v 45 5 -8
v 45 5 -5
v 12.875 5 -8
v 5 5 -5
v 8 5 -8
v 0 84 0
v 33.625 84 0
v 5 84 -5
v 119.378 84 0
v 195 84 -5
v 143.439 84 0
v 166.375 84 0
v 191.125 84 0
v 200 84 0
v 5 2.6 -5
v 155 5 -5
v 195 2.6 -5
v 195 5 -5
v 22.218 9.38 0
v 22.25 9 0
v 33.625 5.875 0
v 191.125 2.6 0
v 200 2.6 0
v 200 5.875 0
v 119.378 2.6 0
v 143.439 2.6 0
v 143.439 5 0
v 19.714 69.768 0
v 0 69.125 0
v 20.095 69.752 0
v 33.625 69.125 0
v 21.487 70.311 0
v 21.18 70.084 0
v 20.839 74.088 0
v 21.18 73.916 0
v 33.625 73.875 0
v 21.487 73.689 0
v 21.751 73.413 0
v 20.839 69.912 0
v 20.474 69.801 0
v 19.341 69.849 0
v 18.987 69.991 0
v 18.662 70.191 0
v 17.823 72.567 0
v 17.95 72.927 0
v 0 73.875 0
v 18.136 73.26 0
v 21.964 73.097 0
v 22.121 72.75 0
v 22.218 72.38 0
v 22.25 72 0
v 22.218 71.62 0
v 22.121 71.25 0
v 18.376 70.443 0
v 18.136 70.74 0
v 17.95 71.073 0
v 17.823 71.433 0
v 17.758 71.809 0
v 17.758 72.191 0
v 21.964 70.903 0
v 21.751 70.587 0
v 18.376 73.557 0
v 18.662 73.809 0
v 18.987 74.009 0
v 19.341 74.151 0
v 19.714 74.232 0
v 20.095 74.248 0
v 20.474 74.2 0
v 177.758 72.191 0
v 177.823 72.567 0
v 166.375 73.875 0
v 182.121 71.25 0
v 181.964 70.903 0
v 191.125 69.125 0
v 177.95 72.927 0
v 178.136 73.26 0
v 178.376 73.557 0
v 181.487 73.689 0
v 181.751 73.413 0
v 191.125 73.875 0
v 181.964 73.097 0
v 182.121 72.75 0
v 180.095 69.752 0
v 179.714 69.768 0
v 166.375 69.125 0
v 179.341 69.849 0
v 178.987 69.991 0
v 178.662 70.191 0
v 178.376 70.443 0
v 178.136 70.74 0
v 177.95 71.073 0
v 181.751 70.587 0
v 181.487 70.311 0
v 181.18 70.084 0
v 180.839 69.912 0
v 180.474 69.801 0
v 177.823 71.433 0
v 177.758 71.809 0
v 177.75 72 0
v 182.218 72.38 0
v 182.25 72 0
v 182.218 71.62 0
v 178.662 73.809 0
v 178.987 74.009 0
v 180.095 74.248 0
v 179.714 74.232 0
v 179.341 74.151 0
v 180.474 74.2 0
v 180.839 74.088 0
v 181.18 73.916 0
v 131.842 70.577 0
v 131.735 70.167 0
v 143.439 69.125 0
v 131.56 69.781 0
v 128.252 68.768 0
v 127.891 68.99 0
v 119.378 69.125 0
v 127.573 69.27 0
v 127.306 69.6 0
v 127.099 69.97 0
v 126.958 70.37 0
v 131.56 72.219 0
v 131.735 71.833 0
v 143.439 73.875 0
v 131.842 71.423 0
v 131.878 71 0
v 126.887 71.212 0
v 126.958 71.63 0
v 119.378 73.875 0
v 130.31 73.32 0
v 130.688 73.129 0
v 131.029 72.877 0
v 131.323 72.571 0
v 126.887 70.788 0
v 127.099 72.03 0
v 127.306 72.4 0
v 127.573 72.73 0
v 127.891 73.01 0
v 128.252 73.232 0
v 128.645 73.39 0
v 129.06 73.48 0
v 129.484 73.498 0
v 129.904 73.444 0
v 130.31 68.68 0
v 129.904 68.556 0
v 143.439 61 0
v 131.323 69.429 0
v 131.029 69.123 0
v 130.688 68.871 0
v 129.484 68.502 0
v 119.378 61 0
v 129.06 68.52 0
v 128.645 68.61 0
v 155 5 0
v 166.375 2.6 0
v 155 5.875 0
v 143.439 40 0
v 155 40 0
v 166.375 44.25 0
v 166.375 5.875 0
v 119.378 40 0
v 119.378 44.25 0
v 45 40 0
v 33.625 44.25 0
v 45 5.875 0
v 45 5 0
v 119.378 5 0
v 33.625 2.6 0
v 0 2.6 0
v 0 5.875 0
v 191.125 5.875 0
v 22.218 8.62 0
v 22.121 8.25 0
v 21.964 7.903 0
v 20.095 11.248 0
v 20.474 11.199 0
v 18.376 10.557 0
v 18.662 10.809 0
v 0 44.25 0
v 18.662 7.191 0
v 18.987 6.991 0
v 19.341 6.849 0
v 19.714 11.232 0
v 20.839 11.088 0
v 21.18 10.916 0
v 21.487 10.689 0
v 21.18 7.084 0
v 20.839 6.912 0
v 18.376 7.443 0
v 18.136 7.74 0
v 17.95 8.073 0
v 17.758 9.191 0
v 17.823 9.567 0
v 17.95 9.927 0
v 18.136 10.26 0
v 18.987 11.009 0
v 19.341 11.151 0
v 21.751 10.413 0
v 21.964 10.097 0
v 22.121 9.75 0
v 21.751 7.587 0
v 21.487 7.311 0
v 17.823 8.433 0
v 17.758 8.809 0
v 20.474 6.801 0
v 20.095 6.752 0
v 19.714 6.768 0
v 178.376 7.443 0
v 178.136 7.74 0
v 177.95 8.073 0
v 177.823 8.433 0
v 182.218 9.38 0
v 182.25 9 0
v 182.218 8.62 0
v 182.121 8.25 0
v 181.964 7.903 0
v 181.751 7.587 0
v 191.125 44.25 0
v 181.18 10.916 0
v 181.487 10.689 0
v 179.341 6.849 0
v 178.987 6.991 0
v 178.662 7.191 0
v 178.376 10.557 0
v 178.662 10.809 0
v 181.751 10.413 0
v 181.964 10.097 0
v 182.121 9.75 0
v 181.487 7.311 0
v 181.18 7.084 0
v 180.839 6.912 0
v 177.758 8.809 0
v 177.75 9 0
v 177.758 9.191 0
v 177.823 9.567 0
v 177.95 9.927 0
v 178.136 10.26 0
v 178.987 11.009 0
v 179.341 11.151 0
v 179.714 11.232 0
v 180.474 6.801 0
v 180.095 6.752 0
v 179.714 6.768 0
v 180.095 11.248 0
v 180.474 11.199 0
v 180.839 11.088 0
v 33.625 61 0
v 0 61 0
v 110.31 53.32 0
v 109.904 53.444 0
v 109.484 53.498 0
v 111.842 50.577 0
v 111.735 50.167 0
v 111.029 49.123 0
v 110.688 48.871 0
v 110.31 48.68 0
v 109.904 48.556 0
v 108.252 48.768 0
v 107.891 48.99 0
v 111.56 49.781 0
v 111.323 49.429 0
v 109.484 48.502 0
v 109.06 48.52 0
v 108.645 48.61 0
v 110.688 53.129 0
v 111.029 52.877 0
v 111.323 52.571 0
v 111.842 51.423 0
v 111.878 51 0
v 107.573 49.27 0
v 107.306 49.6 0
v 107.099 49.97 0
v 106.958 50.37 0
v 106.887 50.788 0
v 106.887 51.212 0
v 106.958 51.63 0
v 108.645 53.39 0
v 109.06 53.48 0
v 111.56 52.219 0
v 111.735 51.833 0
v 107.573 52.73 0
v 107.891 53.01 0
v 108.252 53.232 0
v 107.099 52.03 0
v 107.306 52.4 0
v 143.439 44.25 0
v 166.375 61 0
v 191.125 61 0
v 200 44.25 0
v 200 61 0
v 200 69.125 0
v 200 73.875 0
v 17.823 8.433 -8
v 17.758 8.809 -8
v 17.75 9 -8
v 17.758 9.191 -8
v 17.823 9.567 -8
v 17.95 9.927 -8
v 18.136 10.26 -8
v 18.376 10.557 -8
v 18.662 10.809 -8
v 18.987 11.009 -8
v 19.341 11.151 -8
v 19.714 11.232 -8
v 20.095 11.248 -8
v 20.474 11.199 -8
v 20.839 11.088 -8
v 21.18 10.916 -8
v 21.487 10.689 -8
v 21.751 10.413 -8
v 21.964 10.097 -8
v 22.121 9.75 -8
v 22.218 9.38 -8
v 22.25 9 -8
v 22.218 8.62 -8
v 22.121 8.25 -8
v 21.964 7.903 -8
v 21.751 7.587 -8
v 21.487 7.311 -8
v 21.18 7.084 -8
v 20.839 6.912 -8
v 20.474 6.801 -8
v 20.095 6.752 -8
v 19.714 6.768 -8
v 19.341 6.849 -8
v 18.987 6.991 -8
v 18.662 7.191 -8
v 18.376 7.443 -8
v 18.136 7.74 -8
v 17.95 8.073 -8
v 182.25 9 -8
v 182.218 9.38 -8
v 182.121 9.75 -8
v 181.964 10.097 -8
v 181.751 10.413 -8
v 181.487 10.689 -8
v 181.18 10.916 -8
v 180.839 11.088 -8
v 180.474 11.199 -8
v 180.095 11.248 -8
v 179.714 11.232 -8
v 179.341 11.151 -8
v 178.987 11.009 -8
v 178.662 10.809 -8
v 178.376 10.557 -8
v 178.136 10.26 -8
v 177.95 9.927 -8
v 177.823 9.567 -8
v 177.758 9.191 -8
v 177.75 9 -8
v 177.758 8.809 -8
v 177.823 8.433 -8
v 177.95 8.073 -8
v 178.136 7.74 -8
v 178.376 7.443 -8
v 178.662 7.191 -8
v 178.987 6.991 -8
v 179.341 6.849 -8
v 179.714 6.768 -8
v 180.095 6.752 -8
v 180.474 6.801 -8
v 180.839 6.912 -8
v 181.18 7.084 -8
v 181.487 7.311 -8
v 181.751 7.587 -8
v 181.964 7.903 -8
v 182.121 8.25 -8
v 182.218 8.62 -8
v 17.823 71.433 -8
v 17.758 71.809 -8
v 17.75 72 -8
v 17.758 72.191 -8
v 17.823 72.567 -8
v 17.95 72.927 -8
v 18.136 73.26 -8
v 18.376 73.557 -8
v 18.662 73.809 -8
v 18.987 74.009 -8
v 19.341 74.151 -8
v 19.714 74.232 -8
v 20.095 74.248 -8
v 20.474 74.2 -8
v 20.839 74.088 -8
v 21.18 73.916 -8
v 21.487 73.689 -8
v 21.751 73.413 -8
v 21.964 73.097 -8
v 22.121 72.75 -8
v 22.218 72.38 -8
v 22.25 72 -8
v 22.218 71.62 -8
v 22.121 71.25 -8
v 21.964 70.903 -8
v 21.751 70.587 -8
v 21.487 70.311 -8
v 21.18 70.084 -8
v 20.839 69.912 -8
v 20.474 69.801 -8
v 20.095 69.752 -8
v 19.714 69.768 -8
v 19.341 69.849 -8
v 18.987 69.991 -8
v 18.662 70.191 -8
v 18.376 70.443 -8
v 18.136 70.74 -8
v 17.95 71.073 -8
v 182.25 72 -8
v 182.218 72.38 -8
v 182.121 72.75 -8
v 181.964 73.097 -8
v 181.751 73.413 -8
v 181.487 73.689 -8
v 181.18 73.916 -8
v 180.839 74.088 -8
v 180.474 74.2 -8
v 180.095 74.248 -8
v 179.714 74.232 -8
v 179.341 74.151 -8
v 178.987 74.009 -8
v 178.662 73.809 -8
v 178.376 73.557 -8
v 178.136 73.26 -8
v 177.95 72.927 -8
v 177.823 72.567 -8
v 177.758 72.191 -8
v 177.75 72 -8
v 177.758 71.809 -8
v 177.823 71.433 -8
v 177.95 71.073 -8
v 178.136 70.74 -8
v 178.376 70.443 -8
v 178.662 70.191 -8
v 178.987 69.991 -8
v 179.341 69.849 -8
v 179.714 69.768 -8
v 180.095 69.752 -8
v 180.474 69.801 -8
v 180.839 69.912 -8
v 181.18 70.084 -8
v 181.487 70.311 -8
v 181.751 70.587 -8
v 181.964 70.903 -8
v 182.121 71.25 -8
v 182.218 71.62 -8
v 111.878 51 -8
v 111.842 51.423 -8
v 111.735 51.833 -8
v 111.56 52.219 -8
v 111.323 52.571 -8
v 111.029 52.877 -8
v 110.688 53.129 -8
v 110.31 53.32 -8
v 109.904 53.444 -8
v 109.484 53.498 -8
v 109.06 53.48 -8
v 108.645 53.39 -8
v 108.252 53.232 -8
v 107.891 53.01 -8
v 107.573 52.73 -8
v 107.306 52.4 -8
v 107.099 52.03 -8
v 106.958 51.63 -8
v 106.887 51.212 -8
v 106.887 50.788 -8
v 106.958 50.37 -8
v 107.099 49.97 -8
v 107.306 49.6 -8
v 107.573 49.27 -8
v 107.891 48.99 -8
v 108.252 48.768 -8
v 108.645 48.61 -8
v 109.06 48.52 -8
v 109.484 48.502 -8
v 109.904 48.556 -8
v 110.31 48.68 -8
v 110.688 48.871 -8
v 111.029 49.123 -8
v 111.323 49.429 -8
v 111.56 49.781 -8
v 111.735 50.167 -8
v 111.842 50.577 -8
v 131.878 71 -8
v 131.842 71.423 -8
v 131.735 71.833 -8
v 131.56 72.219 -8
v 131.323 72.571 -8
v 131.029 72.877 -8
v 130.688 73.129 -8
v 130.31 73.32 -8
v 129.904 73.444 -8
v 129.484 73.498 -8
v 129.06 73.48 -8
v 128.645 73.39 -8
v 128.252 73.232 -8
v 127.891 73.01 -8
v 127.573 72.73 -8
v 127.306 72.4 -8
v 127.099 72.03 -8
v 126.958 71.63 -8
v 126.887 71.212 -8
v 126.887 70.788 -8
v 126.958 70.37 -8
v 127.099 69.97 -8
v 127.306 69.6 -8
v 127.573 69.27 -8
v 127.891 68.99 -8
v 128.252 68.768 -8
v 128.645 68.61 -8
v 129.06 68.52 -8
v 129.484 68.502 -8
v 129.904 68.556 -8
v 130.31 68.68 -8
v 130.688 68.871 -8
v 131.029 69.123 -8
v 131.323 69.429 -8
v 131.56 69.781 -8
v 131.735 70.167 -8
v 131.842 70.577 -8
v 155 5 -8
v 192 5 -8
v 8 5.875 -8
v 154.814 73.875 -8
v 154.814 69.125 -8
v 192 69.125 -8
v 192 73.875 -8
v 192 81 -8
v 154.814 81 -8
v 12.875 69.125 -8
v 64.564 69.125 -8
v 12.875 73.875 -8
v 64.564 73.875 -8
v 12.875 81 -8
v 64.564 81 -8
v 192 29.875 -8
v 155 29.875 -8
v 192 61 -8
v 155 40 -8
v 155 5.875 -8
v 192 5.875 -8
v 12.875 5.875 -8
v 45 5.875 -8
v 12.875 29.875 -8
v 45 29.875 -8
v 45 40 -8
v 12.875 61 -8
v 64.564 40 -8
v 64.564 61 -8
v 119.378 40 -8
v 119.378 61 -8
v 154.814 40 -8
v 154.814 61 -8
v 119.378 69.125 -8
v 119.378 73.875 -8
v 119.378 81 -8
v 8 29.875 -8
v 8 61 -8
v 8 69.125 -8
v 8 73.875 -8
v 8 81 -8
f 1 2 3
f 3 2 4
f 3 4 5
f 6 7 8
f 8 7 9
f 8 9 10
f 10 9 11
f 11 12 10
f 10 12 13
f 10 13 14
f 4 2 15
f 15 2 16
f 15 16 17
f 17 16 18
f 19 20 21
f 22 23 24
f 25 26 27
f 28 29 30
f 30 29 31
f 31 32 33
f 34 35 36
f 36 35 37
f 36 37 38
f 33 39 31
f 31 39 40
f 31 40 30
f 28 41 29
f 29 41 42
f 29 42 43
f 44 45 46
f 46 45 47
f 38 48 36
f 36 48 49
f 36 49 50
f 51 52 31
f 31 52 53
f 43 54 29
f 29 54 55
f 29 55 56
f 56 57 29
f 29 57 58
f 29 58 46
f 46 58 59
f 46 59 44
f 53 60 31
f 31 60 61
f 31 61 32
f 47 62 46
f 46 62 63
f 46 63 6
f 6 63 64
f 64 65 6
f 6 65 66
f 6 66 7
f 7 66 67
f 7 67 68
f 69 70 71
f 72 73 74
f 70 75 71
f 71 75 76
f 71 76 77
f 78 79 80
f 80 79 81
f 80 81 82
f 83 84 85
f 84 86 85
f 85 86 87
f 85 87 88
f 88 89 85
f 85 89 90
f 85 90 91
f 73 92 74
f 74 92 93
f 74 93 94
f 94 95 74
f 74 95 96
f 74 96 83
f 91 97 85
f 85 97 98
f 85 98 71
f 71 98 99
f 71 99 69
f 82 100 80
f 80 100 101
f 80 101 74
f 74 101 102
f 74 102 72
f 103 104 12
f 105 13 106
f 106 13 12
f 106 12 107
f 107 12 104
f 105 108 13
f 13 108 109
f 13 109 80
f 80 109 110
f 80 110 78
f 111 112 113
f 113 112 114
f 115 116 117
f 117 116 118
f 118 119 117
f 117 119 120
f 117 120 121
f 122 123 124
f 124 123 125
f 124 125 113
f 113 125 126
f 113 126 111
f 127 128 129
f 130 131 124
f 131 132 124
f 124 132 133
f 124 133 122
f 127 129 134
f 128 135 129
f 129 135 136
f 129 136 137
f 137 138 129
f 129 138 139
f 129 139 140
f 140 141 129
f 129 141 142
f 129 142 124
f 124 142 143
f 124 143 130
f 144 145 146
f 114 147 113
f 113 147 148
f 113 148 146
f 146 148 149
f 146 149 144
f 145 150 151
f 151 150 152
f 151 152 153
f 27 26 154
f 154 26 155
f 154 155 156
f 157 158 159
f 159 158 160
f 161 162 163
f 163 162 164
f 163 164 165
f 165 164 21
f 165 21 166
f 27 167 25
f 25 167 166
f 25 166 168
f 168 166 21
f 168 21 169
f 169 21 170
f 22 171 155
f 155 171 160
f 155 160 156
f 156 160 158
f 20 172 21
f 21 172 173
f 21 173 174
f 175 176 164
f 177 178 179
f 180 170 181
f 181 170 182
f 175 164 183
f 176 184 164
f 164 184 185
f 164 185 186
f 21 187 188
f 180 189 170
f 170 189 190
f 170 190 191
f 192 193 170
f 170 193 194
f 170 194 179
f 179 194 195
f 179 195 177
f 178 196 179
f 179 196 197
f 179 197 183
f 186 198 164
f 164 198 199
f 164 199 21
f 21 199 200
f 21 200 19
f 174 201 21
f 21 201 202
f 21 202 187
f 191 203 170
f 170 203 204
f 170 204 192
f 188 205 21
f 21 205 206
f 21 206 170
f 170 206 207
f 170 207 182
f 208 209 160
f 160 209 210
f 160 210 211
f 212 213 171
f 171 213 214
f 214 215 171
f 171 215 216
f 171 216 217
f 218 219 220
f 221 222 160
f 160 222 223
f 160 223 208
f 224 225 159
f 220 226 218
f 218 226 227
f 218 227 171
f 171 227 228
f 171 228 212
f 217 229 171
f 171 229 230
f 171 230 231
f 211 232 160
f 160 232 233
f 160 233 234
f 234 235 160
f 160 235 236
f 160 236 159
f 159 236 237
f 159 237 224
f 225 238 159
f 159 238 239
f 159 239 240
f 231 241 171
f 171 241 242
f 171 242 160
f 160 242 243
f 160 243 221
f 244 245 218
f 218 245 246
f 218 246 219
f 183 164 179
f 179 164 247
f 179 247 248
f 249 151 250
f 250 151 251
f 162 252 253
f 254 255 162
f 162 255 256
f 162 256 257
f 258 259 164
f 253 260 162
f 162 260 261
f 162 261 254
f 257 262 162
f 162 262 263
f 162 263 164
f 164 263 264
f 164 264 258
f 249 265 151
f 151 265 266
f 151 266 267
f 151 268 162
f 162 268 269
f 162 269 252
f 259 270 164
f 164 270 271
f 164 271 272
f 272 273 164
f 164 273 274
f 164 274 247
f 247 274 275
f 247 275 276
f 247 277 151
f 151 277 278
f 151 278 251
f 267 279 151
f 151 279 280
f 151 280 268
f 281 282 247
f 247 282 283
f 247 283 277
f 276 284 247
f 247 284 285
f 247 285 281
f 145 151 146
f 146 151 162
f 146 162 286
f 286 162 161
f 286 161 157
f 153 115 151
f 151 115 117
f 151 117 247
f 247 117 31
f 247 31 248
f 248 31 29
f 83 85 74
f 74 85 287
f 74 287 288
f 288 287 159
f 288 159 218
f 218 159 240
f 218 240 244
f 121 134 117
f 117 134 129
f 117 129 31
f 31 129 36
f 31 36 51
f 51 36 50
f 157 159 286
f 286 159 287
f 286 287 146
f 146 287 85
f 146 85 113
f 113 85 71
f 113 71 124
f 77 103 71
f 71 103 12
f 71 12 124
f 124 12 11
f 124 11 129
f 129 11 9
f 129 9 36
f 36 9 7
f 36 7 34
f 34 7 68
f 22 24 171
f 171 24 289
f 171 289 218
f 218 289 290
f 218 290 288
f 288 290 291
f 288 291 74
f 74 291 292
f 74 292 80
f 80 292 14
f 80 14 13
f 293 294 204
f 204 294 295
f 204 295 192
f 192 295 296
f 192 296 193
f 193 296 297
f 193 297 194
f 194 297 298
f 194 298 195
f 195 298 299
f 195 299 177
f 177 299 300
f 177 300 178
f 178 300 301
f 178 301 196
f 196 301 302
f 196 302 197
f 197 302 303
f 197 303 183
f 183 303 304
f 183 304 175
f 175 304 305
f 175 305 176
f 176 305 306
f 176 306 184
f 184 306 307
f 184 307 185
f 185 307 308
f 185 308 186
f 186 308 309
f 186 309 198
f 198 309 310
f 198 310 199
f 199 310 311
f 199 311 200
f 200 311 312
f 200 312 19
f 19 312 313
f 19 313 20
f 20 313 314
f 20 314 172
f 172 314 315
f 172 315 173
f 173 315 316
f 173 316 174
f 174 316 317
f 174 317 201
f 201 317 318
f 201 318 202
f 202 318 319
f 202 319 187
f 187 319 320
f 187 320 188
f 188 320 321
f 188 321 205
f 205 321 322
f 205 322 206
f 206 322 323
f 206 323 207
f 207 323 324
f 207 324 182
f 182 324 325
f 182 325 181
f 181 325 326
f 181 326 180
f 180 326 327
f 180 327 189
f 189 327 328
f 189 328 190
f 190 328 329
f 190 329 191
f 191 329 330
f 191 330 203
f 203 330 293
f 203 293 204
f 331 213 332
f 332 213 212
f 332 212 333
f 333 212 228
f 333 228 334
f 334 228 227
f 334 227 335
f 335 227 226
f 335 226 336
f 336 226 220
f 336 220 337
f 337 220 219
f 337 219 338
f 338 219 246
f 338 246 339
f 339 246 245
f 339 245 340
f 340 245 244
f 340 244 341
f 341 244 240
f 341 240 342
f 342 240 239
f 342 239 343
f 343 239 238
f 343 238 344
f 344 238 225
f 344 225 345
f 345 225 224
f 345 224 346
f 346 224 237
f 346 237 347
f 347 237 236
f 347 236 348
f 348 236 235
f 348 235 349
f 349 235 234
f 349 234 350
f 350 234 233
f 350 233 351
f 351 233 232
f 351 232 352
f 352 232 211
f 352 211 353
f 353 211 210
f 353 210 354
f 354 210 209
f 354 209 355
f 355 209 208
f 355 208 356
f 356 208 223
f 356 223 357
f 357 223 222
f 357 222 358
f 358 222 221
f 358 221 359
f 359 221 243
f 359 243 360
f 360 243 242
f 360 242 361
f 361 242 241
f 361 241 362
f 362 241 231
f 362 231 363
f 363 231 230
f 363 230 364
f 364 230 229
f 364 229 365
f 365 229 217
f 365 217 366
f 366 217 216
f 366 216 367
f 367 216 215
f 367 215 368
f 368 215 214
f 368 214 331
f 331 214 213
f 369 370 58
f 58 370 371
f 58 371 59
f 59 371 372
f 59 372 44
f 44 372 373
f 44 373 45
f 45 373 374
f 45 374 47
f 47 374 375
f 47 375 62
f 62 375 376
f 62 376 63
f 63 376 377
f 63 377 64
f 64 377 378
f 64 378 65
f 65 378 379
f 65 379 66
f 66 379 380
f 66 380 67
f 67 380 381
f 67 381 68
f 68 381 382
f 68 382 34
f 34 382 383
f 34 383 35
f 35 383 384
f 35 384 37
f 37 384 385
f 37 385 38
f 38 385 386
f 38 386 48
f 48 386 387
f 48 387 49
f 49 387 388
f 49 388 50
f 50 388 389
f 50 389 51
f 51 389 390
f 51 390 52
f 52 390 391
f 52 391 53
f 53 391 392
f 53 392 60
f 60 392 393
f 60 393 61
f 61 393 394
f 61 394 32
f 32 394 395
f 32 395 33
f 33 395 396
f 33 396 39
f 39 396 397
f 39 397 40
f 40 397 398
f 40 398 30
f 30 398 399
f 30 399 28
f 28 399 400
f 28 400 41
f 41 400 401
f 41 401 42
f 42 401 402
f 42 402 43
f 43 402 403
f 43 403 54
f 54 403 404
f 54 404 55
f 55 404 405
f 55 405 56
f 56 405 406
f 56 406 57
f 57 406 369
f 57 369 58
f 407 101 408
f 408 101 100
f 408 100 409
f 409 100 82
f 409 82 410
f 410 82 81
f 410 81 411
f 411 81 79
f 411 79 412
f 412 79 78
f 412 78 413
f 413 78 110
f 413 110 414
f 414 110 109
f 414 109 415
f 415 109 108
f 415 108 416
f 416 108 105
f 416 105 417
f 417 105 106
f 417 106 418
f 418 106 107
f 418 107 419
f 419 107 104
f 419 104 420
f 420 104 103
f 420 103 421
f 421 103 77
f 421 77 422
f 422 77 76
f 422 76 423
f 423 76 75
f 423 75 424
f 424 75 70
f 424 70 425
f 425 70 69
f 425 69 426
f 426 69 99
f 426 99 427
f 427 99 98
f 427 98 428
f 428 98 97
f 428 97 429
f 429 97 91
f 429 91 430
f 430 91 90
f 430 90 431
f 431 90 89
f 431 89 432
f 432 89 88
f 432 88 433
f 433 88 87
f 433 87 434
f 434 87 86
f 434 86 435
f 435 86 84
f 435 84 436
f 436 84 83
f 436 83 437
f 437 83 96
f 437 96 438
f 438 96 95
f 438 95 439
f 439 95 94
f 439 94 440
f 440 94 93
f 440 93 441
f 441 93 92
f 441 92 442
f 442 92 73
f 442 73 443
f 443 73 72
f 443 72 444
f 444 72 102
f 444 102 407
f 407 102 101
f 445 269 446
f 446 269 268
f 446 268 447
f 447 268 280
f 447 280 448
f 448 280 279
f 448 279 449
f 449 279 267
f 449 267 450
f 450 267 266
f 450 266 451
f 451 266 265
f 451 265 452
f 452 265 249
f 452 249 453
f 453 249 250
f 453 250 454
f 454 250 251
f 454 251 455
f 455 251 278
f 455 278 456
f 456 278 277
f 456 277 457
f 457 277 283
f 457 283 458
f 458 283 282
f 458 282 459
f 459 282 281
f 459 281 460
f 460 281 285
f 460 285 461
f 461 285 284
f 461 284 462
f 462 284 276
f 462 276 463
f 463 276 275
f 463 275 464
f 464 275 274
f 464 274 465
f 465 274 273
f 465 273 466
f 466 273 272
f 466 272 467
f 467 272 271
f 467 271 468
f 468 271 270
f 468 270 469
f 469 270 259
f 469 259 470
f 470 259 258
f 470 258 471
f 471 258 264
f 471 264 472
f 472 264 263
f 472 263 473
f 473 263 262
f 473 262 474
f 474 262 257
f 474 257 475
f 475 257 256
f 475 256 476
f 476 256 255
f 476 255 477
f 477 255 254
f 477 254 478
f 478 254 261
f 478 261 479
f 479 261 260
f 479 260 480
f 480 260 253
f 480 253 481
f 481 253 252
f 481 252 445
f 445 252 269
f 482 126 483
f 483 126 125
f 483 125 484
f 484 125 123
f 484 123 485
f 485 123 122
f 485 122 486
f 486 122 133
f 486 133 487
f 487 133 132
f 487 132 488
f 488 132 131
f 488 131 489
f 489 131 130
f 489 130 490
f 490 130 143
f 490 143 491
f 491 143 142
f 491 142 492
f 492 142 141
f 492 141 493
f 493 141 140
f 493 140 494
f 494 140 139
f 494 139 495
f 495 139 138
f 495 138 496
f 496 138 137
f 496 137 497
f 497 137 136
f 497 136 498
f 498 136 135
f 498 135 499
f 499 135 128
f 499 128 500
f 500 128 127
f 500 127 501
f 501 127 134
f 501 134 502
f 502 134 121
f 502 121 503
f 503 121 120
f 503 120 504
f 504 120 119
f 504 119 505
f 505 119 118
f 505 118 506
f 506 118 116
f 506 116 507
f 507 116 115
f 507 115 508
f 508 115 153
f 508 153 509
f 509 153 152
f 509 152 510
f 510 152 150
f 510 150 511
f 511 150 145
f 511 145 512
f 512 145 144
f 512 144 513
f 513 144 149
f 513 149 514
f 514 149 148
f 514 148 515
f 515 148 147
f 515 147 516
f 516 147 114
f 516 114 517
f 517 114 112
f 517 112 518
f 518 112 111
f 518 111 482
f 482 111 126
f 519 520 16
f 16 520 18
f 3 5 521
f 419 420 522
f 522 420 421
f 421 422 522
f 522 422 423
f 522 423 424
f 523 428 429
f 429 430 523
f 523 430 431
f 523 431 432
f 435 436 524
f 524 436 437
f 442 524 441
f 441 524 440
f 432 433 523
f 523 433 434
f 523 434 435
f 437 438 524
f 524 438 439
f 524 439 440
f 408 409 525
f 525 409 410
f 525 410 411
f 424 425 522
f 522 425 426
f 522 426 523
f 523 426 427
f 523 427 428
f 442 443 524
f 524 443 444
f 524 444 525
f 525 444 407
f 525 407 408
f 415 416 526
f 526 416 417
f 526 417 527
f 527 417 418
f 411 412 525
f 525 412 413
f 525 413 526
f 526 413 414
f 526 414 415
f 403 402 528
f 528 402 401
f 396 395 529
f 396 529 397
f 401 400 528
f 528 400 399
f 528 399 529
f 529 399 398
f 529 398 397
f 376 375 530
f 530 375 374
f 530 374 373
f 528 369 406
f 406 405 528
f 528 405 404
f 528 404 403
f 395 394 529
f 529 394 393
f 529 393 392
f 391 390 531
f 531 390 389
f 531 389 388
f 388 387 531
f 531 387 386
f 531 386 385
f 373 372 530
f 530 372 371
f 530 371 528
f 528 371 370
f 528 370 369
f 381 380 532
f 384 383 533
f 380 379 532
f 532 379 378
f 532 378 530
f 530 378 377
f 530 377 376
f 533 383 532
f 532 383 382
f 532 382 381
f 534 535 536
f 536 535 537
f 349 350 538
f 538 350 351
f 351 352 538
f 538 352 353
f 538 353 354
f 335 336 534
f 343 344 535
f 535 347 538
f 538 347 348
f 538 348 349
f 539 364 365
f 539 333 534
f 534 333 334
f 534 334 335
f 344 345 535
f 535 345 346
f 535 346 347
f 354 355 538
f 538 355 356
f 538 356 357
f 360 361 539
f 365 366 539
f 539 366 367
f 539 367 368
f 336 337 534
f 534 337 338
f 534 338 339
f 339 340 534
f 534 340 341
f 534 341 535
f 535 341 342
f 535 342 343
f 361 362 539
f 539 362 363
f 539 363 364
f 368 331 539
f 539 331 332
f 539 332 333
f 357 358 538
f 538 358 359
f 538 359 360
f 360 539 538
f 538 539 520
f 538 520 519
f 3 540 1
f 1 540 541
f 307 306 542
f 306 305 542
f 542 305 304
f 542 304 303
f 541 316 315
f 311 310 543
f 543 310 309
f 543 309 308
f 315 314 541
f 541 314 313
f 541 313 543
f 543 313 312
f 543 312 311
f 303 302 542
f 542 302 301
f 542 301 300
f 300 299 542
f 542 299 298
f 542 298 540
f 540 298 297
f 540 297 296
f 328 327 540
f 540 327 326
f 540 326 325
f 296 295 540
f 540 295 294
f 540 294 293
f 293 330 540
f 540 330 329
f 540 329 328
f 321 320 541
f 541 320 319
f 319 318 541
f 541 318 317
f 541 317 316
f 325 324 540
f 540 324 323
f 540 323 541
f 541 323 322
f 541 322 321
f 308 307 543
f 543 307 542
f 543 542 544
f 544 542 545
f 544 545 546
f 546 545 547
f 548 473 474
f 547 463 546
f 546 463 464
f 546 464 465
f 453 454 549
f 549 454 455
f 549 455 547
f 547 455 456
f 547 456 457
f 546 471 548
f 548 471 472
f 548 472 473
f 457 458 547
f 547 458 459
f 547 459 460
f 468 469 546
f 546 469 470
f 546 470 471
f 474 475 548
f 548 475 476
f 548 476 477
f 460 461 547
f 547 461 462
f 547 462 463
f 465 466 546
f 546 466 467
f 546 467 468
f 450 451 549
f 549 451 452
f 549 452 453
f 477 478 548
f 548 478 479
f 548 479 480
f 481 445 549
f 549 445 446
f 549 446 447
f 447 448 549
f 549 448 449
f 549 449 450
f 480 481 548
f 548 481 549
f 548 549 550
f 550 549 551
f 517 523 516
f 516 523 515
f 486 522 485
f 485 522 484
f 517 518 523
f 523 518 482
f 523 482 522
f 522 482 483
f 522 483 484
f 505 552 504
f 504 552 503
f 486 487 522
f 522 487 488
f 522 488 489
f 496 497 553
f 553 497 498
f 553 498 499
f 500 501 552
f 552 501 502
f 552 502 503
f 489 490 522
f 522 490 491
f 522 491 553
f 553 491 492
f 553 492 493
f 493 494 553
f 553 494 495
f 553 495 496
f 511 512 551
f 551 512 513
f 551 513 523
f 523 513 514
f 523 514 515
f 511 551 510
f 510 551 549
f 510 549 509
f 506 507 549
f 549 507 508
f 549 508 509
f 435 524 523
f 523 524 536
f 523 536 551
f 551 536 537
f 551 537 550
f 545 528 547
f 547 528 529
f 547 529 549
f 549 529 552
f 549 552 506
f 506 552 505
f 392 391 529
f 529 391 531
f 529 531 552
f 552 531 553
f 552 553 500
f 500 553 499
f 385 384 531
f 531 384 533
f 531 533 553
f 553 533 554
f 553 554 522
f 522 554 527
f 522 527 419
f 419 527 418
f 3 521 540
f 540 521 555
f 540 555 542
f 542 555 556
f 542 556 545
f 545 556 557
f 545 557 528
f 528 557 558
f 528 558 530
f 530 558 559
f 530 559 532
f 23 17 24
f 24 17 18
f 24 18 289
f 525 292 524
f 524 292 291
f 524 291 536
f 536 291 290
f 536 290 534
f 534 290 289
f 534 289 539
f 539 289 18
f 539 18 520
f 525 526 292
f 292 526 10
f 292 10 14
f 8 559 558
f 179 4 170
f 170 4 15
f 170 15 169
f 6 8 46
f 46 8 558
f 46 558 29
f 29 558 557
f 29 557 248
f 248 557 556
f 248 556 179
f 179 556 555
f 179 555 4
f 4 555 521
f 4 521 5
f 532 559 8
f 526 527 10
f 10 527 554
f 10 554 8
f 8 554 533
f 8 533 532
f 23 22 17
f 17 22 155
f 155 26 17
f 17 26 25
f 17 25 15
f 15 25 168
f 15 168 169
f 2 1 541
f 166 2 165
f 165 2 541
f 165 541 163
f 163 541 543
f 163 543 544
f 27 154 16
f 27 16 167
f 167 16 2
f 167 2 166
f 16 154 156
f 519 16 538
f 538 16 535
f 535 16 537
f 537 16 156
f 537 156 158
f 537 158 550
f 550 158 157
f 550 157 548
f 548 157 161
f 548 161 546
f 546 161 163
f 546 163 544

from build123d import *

# Parameters (mm, degrees)
SKETCH1_W               = 200
SKETCH1_H               = 84
SKETCH1_R               = 2.25
SKETCH1_R_2             = 2.5
BOSS_EXTRUDE1_DEPTH     = 5
SKETCH2_W               = 200
SKETCH2_H               = 79
SKETCH2_R               = 2.25
BOSS_EXTRUDE2_DEPTH     = 3
CHAMFER1_SIZE           = 8
CHAMFER3_SIZE           = 3
SKETCH3_W               = 7.071067812
SKETCH3_H               = 2.6
CUT_EXTRUDE1_DEPTH      = 234.034075139
SKETCH4_R               = 2.5
CUT_EXTRUDE2_DEPTH      = 218.071416819
CUT_EXTRUDE3_DEPTH      = 218.071416819
CUT_EXTRUDE3_DEPTH_BACK = 218.071416819
SKETCH6_W               = 110
SKETCH6_H               = 35


with BuildPart() as part:
    # Sketch1 → Boss-Extrude1 (new body)
    with BuildSketch(Plane.XY):
        with Locations((100, 42)):
            Rectangle(SKETCH1_W, SKETCH1_H)
        with Locations((20, 9)):
            Circle(SKETCH1_R, mode=Mode.SUBTRACT)
        with Locations(Location((180, 9, 0), (0, 0, 180))):
            Circle(SKETCH1_R, mode=Mode.SUBTRACT)
        with Locations((20, 72)):
            Circle(SKETCH1_R, mode=Mode.SUBTRACT)
        with Locations(Location((180, 72, 0), (0, 0, 180))):
            Circle(SKETCH1_R, mode=Mode.SUBTRACT)
        with Locations((109.377508284, 51)):
            Circle(SKETCH1_R_2, mode=Mode.SUBTRACT)
        with Locations((129.377508284, 71)):
            Circle(SKETCH1_R_2, mode=Mode.SUBTRACT)
    extrude(amount=-BOSS_EXTRUDE1_DEPTH)

    # Sketch2 → Boss-Extrude2 (add)
    with BuildSketch(Plane(origin=(0, 0, -5), x_dir=(-1, 0, 0), z_dir=(0, 0, -1))):
        with Locations((-100, 44.5)):
            Rectangle(SKETCH2_W, SKETCH2_H)
        with Locations(Location((-20, 9, 0), (0, 0, 180))):
            Circle(SKETCH2_R, mode=Mode.SUBTRACT)
        with Locations((-180, 9)):
            Circle(SKETCH2_R, mode=Mode.SUBTRACT)
        with Locations(Location((-20, 72, 0), (0, 0, 180))):
            Circle(SKETCH2_R, mode=Mode.SUBTRACT)
        with Locations((-180, 72)):
            Circle(SKETCH2_R, mode=Mode.SUBTRACT)
    extrude(amount=BOSS_EXTRUDE2_DEPTH)

    # Chamfer1
    # the kernel refuses this chamfer: 8 mm, written as the material it takes off along each edge
    with BuildSketch(Plane(origin=(200, -15.573463904, -8), x_dir=(-0.9996219169112968, 0, -0.027495876610586296), z_dir=(0, 1, 0)), Plane(origin=(0, 104.573463904, -8), x_dir=(0.9996219169112968, 0, -0.027495876610586275), z_dir=(0, -1, 0))) as chamfer1_piece_1:
        Polygon((CHAMFER1_SIZE * 0.999621916911, CHAMFER1_SIZE * 0.0274958766106), (-CHAMFER1_SIZE * 0.0274958766106, CHAMFER1_SIZE * 0.999621916911), (0, 0), align=None)
    extrude(amount=120.146927807, mode=Mode.SUBTRACT)

    # Chamfer3
    chamfer3_edges = [part.edges().sort_by_distance(p)[0] for p in [
        (100, 84, -8),
    ]]
    chamfer(chamfer3_edges, length=CHAMFER3_SIZE)

    # Sketch3 → Cut-Extrude1 (cut, through all, along a direction that is not the sketch's normal)
    with BuildSketch(Plane(origin=(100, 0, -100), x_dir=(-0.7071067811865452, 0, -0.7071067811865498), z_dir=(0.7071067811865498, 0, -0.7071067811865452))):
        with Locations((-137.885822331, 1.3)):
            Rectangle(SKETCH3_W, SKETCH3_H)
    extrude(amount=-CUT_EXTRUDE1_DEPTH, dir=(1, 0, 0), mode=Mode.SUBTRACT)

    # Sketch4 → Cut-Extrude2 (cut, through all)
    with BuildSketch(Plane.XY):
        with Locations((129.377508284, 71)):
            Circle(SKETCH4_R)
        with Locations((109.377508284, 51)):
            Circle(SKETCH4_R)
    extrude(amount=-CUT_EXTRUDE2_DEPTH, mode=Mode.SUBTRACT)

    # Sketch6 → Cut-Extrude3 (cut, two sides: drawn at the far end of the back side and taken through both)
    with BuildSketch(Plane(origin=(0, 0, -8), x_dir=(-1, 0, 0), z_dir=(0, 0, -1)).offset(-CUT_EXTRUDE3_DEPTH_BACK)):
        with Locations((-100, 22.5)):
            Rectangle(SKETCH6_W, SKETCH6_H)
    extrude(amount=CUT_EXTRUDE3_DEPTH + CUT_EXTRUDE3_DEPTH_BACK, mode=Mode.SUBTRACT)


solid = part.part
